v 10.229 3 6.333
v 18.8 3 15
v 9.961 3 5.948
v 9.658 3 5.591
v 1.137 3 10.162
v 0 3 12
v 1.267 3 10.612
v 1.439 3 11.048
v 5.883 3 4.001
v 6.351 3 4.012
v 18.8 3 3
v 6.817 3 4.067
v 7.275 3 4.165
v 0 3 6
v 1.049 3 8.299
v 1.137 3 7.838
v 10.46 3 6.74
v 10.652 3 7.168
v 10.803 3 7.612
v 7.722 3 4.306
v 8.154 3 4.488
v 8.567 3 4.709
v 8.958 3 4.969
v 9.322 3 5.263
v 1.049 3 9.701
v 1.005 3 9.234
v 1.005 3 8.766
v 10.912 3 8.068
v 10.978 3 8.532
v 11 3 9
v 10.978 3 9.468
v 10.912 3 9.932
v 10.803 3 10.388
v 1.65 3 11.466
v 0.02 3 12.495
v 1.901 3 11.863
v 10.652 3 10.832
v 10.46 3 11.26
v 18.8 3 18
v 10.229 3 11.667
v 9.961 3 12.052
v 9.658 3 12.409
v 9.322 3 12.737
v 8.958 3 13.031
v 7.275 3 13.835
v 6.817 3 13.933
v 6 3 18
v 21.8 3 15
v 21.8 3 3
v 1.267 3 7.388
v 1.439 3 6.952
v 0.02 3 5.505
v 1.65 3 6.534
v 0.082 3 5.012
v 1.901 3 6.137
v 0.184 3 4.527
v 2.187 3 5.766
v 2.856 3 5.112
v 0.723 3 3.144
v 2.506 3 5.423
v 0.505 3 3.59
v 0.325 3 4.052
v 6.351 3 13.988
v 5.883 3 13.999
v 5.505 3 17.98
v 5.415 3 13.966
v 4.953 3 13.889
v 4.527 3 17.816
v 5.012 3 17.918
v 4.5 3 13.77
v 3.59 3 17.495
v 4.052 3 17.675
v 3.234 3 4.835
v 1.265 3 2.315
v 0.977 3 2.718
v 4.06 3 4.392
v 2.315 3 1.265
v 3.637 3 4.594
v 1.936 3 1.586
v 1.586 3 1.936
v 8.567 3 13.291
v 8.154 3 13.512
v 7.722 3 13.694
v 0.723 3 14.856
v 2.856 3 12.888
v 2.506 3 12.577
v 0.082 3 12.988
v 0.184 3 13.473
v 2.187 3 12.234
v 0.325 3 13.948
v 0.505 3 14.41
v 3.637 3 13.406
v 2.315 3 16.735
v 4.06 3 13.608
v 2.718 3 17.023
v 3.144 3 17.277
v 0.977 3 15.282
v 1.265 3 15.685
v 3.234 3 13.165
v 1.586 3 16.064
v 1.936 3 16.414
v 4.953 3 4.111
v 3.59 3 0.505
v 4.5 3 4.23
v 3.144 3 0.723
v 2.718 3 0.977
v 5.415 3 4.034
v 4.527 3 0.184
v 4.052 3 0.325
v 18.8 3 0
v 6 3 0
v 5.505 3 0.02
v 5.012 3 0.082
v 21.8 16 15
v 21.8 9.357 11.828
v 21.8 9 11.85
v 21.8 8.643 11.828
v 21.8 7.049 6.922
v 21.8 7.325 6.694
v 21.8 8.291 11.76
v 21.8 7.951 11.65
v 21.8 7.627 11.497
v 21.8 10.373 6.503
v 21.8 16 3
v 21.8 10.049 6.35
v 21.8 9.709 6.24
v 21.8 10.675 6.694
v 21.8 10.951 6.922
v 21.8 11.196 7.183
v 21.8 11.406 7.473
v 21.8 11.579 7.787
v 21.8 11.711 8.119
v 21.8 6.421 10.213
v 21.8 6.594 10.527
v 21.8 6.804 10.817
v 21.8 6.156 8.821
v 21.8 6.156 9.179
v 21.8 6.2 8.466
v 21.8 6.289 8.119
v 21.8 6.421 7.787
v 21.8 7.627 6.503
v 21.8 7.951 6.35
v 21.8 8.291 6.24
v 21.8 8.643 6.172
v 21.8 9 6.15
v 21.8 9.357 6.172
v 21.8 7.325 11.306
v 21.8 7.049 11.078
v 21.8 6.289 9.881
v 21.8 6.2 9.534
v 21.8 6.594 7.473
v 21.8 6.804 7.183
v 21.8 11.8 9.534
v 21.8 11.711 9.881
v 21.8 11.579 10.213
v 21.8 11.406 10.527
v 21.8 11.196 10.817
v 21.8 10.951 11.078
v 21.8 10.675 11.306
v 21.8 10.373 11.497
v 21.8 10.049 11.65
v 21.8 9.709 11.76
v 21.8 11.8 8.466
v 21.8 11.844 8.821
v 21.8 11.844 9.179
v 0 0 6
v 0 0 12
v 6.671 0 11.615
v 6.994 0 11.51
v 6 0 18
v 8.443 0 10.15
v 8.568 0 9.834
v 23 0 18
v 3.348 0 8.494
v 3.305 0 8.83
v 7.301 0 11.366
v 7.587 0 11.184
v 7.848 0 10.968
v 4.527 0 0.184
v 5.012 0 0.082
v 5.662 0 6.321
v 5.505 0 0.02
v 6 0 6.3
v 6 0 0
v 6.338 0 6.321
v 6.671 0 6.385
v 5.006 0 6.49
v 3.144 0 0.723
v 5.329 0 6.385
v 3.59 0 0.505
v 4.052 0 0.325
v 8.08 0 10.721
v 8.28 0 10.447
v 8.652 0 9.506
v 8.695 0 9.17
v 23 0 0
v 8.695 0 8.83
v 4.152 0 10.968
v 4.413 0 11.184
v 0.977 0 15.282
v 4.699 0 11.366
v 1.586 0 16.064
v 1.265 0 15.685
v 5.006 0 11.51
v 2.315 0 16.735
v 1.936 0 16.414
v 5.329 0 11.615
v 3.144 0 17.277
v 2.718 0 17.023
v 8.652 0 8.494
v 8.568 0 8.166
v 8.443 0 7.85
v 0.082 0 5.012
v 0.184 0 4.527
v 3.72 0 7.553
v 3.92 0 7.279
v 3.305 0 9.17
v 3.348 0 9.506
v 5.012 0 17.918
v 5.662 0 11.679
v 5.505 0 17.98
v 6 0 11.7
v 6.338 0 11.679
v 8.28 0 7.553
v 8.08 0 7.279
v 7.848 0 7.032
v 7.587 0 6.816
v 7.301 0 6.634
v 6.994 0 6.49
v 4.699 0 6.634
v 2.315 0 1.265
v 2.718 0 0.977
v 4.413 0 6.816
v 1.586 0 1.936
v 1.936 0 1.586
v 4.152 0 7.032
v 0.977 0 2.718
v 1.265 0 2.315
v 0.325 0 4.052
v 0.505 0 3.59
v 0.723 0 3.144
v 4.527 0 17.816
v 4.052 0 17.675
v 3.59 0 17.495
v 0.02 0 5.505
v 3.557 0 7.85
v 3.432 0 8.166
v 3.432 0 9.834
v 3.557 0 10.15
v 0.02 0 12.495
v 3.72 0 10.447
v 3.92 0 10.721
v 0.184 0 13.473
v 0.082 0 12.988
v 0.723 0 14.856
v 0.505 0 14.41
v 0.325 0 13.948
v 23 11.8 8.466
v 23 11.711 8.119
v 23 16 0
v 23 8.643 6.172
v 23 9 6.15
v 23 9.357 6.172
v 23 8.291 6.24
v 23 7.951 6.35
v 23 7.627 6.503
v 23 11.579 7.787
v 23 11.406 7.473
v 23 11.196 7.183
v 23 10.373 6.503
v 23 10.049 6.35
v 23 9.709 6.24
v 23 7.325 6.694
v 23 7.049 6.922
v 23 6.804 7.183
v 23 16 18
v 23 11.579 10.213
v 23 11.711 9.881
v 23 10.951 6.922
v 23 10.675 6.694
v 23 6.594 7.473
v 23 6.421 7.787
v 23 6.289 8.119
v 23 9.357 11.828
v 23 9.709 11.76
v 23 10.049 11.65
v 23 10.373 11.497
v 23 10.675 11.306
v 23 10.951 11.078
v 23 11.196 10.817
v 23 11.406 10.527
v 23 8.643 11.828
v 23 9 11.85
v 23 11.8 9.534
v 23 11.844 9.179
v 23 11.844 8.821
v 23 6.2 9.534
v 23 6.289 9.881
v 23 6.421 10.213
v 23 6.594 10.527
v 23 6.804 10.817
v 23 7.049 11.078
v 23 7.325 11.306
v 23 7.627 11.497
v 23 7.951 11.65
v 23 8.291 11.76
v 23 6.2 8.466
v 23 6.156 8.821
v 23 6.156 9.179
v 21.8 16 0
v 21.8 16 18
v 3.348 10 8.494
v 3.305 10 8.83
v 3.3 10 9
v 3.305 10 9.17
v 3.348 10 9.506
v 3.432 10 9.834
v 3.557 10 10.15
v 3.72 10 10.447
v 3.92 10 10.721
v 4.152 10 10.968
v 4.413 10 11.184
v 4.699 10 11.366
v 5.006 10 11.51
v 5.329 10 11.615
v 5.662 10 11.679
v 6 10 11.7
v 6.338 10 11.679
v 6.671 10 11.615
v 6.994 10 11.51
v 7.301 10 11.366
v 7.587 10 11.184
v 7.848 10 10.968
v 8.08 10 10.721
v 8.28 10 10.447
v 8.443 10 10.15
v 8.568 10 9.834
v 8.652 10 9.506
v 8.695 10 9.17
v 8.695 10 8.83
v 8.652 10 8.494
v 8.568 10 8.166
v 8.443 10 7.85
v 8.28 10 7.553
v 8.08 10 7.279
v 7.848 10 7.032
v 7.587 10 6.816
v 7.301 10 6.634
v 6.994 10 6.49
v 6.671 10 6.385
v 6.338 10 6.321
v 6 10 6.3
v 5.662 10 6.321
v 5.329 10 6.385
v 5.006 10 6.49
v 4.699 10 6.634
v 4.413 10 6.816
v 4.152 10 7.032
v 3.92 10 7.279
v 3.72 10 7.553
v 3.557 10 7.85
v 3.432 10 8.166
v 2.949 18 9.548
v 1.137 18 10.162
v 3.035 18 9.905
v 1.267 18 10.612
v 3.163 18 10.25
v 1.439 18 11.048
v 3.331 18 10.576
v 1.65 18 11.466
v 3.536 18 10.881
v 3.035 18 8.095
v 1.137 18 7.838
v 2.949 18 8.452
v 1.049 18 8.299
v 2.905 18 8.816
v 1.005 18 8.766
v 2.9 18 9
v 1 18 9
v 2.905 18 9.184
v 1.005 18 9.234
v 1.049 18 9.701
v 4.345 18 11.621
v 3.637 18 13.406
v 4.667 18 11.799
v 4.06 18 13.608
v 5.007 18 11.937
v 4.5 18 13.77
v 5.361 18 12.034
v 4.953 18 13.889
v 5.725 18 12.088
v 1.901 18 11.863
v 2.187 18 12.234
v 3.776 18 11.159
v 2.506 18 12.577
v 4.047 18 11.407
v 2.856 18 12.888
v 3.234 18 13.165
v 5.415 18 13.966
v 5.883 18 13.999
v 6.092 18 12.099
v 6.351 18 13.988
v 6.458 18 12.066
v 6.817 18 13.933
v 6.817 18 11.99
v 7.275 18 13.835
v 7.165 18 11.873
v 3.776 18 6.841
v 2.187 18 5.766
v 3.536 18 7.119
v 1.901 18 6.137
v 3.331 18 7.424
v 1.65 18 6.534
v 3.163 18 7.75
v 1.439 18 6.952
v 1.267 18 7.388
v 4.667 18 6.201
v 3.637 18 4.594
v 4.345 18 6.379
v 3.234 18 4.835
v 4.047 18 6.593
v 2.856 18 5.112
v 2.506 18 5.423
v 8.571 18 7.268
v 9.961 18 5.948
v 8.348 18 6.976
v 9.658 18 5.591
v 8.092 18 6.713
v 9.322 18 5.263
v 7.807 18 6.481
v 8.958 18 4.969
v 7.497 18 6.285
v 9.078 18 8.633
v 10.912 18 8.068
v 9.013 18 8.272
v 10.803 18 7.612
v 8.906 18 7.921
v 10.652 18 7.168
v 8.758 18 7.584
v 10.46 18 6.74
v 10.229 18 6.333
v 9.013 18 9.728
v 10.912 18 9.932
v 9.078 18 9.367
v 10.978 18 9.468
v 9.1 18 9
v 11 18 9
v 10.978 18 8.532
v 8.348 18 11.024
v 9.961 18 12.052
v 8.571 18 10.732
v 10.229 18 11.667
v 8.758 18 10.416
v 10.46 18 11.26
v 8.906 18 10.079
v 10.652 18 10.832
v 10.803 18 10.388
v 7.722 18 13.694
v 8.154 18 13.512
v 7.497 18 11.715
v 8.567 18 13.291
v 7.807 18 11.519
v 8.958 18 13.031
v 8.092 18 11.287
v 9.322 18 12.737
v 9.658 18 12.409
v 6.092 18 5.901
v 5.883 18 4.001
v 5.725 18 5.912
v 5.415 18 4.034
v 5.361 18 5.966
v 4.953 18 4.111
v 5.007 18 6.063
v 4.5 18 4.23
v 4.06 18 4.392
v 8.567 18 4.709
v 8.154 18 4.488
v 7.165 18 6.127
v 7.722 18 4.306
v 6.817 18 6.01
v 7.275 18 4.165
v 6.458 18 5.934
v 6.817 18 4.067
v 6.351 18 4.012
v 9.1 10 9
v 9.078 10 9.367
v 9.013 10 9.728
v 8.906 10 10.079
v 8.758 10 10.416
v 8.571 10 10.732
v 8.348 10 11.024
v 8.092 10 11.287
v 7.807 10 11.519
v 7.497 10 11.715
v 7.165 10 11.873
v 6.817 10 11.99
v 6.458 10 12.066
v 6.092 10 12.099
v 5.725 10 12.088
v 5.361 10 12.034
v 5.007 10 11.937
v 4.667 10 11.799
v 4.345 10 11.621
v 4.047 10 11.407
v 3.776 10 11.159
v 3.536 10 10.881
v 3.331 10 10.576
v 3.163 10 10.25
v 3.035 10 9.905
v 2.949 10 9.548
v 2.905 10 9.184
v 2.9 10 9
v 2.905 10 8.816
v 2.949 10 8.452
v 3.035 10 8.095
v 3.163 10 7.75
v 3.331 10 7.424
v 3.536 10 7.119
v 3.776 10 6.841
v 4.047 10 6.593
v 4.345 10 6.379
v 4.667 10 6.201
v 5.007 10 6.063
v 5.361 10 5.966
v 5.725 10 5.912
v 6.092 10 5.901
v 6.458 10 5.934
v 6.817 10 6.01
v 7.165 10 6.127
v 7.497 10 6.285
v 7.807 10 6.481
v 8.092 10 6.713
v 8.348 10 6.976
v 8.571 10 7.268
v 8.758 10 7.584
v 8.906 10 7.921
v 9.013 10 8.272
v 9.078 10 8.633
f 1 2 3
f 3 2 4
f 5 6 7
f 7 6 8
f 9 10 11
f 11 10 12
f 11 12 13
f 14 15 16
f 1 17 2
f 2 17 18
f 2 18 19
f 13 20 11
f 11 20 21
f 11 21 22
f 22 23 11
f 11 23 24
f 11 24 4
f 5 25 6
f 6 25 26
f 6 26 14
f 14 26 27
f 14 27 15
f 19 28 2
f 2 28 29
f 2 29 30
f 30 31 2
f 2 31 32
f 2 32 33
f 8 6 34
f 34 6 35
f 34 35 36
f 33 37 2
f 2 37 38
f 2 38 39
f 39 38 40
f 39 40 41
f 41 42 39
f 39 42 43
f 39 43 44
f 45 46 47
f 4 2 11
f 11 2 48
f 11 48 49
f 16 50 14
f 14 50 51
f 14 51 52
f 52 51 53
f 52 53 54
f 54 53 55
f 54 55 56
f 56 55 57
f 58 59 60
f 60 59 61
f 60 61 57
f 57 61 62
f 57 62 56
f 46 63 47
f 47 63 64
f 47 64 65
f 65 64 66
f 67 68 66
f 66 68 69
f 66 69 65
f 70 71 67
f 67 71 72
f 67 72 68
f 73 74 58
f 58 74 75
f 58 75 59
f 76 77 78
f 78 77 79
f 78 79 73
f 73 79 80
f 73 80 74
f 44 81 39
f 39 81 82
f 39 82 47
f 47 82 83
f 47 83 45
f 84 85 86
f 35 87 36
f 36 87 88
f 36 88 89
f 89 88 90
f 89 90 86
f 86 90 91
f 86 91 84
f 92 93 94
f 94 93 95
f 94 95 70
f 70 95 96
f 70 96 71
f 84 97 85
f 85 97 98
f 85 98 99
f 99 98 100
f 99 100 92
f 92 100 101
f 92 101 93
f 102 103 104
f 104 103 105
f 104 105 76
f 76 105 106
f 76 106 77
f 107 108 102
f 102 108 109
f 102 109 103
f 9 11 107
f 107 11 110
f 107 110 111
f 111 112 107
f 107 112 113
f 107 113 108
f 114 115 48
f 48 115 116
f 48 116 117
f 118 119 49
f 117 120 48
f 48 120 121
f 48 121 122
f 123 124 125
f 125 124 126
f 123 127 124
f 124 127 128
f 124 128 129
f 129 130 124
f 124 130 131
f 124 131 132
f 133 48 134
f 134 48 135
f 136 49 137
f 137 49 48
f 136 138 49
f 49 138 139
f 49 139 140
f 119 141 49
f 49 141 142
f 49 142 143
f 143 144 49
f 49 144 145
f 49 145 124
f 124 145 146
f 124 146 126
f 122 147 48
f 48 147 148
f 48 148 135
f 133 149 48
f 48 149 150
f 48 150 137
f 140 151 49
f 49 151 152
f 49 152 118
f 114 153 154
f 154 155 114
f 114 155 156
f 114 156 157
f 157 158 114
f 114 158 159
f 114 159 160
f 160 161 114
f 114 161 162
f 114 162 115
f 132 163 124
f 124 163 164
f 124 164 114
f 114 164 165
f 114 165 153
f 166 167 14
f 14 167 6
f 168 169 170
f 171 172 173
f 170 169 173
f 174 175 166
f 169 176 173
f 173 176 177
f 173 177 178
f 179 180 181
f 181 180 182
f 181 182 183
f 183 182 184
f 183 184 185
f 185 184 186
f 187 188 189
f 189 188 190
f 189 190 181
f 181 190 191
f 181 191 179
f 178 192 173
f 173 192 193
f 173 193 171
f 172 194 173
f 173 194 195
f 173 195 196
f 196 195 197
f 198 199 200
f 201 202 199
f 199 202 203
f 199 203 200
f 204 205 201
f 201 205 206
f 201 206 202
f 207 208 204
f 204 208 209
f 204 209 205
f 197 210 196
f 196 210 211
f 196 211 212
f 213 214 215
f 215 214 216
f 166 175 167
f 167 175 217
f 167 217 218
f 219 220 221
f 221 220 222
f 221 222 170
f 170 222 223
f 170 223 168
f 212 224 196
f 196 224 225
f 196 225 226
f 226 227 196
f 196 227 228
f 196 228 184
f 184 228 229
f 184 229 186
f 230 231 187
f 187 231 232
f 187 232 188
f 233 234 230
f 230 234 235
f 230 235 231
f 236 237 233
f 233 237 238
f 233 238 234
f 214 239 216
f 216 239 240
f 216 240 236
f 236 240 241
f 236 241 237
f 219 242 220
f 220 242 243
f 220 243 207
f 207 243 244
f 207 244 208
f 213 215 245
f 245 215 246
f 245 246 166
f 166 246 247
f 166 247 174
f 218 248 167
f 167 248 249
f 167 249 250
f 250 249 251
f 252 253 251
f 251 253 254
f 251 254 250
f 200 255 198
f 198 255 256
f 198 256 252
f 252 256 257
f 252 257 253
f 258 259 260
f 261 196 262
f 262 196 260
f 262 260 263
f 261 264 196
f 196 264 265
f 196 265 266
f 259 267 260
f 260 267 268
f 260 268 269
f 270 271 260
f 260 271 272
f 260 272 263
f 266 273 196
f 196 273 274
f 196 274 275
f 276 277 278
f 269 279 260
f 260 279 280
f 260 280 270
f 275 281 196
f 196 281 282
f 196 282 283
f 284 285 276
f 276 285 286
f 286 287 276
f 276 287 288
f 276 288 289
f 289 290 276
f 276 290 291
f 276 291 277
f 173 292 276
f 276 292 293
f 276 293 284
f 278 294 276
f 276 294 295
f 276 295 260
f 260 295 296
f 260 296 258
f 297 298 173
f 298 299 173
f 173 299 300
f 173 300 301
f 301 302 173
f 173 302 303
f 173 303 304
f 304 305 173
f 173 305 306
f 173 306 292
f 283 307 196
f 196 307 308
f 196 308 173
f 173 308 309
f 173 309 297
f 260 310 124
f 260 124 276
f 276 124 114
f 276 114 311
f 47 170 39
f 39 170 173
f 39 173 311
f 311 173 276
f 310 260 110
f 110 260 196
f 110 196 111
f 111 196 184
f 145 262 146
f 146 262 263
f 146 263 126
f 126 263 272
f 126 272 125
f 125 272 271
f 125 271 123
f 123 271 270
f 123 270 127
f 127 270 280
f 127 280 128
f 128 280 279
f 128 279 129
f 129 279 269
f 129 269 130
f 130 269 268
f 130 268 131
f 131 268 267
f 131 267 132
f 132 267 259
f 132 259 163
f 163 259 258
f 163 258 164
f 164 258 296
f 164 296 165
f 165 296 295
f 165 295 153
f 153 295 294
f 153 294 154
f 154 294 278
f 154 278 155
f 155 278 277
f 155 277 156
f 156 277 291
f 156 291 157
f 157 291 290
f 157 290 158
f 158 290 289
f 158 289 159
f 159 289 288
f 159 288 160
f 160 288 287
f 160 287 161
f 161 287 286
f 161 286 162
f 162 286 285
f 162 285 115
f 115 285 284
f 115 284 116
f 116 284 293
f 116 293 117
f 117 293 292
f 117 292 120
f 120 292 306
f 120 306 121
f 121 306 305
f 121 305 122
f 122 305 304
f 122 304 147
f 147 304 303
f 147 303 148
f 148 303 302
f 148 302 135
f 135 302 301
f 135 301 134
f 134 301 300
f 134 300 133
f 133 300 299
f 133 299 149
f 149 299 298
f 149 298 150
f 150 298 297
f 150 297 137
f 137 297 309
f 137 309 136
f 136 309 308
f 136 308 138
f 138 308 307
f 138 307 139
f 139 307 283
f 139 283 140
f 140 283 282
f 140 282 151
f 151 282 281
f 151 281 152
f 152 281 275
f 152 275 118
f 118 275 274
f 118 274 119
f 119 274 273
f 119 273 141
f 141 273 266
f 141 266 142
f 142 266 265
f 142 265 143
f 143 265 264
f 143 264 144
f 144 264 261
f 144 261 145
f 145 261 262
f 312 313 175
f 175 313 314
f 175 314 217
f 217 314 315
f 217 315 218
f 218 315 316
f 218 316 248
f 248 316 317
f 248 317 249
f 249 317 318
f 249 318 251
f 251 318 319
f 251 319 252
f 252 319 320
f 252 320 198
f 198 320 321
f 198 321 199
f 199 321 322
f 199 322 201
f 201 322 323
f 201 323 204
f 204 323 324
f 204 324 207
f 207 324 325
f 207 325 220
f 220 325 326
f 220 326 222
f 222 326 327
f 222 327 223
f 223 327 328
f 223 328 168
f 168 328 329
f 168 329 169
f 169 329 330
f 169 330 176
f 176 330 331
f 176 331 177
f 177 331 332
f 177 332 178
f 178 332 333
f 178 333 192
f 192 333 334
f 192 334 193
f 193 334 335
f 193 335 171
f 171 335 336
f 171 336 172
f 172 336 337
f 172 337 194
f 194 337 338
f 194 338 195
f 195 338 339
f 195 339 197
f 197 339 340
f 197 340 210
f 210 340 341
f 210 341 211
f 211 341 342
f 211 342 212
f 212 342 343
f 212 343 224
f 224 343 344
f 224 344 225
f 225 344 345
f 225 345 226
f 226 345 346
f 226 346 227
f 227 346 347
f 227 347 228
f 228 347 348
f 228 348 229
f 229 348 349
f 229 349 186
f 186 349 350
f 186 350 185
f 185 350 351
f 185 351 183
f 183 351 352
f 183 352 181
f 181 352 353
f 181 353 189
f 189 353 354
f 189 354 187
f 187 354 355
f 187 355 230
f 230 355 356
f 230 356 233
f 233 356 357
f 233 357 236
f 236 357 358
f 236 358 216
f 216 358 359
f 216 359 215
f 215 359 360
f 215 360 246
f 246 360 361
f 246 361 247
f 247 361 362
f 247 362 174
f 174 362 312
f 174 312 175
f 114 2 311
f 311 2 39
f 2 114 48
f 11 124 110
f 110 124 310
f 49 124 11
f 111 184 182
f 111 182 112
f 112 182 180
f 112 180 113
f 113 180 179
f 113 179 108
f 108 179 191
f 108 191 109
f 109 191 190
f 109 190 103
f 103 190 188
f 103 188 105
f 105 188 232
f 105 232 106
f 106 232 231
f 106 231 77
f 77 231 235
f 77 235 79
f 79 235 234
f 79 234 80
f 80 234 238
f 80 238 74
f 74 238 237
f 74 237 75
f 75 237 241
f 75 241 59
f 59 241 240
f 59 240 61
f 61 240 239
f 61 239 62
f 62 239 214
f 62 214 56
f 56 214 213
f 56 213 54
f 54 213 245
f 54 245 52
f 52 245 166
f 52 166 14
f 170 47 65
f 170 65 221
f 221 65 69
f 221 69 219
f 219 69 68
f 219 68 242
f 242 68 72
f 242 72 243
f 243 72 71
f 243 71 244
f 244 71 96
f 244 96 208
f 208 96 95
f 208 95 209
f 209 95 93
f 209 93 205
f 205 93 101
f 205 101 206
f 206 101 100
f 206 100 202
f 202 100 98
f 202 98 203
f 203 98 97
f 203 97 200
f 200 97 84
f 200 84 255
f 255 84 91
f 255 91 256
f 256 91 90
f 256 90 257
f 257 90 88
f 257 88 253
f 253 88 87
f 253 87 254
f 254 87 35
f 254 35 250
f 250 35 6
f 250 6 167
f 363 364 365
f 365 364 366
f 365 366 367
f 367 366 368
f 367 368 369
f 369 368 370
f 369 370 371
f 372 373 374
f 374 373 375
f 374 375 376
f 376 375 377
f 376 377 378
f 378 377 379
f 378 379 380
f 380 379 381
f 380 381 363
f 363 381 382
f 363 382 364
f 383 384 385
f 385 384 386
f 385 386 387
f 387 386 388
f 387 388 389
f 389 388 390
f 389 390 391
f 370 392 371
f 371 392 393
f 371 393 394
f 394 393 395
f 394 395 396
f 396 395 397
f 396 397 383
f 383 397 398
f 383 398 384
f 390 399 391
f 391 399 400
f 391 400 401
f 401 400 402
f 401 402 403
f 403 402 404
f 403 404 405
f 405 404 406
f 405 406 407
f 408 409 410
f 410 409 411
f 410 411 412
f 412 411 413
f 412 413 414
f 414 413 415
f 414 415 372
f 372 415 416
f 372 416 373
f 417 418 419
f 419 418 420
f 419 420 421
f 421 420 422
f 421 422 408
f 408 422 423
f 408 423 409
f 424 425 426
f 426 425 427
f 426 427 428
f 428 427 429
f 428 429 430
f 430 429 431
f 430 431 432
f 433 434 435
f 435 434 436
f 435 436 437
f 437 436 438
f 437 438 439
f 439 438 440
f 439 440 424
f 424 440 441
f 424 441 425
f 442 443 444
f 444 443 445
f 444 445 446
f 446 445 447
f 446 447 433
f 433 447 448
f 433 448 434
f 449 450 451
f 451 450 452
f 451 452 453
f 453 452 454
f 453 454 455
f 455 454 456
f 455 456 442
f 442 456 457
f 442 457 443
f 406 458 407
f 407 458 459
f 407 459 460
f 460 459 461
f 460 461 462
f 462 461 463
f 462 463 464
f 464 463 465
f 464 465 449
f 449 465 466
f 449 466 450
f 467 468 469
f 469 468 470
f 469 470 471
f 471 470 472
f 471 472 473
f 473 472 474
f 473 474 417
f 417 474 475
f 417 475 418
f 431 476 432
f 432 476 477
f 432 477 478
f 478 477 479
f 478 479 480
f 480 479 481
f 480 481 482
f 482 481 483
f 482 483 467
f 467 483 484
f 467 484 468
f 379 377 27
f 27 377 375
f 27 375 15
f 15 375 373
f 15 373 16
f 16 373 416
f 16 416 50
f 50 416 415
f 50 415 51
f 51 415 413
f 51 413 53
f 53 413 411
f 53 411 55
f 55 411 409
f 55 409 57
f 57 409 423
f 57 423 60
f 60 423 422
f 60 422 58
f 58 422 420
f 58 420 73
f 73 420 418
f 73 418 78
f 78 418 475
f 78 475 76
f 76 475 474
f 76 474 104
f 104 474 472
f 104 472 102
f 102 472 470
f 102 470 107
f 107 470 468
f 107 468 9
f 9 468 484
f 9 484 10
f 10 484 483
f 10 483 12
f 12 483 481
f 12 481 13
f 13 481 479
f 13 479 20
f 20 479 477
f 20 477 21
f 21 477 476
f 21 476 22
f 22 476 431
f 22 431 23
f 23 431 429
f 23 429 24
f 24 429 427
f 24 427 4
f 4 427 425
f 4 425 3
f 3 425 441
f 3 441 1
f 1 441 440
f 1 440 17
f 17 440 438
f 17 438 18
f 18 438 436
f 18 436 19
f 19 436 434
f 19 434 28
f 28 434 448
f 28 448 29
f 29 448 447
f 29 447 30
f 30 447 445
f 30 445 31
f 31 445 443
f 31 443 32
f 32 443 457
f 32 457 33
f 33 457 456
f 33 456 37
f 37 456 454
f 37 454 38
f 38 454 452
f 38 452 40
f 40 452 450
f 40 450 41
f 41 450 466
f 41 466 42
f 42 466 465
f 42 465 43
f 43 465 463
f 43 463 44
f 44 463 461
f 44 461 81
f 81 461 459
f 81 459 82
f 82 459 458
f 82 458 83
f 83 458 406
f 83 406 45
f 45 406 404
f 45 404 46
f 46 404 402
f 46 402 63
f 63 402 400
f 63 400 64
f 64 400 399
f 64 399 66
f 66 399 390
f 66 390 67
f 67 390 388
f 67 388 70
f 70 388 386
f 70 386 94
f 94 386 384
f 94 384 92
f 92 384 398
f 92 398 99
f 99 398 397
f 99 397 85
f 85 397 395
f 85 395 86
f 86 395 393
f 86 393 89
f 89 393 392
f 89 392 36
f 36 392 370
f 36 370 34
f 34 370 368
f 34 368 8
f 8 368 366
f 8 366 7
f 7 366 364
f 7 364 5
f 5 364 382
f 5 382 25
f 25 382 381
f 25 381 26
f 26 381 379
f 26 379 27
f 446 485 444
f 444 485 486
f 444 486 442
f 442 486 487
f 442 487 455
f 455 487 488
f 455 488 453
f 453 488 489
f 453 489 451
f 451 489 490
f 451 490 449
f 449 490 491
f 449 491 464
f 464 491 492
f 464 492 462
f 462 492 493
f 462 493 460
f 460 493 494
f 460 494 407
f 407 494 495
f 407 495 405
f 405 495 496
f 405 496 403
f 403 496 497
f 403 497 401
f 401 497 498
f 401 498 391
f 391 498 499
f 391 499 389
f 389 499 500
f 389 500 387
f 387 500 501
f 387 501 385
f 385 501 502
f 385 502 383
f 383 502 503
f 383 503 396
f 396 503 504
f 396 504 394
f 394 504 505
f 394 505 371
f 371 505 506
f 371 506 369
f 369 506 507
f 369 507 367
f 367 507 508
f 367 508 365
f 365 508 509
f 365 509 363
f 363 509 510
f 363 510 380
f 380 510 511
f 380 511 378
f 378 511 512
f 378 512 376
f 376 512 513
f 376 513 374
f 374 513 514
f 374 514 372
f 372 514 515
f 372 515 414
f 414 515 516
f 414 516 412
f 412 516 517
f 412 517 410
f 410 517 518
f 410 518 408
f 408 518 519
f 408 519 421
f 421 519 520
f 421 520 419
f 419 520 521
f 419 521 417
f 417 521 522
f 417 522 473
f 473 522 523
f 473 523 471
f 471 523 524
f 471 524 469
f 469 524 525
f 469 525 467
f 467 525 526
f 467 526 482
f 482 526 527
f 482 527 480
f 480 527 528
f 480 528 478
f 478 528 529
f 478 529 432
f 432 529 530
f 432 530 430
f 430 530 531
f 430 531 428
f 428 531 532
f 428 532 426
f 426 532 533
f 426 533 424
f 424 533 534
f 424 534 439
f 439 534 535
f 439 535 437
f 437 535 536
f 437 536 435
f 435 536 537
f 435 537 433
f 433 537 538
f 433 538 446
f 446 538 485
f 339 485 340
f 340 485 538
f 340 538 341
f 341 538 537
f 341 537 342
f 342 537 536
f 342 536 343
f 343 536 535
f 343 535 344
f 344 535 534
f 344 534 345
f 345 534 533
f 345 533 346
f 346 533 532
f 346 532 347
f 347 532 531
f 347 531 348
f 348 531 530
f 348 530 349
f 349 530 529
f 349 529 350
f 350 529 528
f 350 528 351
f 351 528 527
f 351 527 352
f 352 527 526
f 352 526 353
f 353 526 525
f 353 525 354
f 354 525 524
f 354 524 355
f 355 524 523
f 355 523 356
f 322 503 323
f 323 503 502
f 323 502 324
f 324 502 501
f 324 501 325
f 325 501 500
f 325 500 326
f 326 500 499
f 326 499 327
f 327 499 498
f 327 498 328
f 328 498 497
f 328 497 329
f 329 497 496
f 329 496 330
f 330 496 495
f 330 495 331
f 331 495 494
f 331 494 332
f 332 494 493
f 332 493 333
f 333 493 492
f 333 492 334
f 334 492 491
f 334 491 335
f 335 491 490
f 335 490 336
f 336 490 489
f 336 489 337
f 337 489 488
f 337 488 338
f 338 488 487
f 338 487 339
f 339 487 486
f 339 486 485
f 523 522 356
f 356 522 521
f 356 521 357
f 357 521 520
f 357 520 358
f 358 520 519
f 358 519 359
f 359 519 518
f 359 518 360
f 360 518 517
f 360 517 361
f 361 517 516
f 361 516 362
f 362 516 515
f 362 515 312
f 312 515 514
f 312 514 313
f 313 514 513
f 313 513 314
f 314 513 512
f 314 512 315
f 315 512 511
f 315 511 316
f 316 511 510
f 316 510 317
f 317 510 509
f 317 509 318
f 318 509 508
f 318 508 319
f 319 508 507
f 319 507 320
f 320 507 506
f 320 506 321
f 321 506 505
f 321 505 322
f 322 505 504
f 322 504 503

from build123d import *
from build123d.topology import SkipClean

# Parameters (mm, degrees)
BOSS_EXTRU_1_DEPTH           = 18
ENL_V_MAT_EXTRU_1_DEPTH      = 34.301651611
ENL_V_MAT_EXTRU_1_DEPTH_BACK = 34.301651611
ESQUISSE2_R                  = 2.85
ENL_V_MAT_EXTRU_2_DEPTH      = 34.301651611
ENL_V_MAT_EXTRU_2_DEPTH_BACK = 34.301651611
ESQUISSE3_R                  = 2.7
BOSS_EXTRU_2_DEPTH           = 3
BOSS_EXTRU_3_START           = -18
BOSS_EXTRU_3_DEPTH           = 3
CONG_1_R                     = 6
ESQUISSE6_R                  = 5
ESQUISSE6_R_2                = 3.1
BOSS_EXTRU_4_DEPTH           = 15
ESQUISSE7_R                  = 3.1
ESQUISSE7_R_2                = 2.7
BOSS_EXTRU_5_DEPTH           = 7


with BuildPart() as part:
    # Esquisse1 → Boss.-Extru.1 (new body)
    with BuildSketch(Plane.XY):
        Polygon((0, 0), (23, 0), (23, 16), (21.8, 16), (21.8, 3), (0, 3), align=None)
    extrude(amount=BOSS_EXTRU_1_DEPTH)

    # Esquisse2 → Enlèv. mat.-Extru.1 (cut, two sides: drawn at the far end of the back side and taken through both)
    with BuildSketch(Plane(origin=(23, 0, 0), x_dir=(0, 0, -1), z_dir=(1, 0, 0)).offset(-ENL_V_MAT_EXTRU_1_DEPTH_BACK)):
        with Locations((-9, 9)):
            Circle(ESQUISSE2_R)
    extrude(amount=ENL_V_MAT_EXTRU_1_DEPTH + ENL_V_MAT_EXTRU_1_DEPTH_BACK, mode=Mode.SUBTRACT)

    # Esquisse3 → Enlèv. mat.-Extru.2 (cut, two sides: drawn at the far end of the back side and taken through both)
    with BuildSketch(Plane.XZ.offset(-ENL_V_MAT_EXTRU_2_DEPTH_BACK)):
        with Locations((6, 9)):
            Circle(ESQUISSE3_R)
    extrude(amount=ENL_V_MAT_EXTRU_2_DEPTH + ENL_V_MAT_EXTRU_2_DEPTH_BACK, mode=Mode.SUBTRACT)

    # Esquisse4 → Boss.-Extru.2 (add)
    with BuildSketch(Plane.XY.offset(18)):
        Polygon((21.8, 3), (21.8, 16), (18.8, 3), align=None)
    extrude(amount=-BOSS_EXTRU_2_DEPTH)

    # Esquisse4<2> → Boss.-Extru.3 (add)
    with BuildSketch(Plane.XY.offset(18).offset(BOSS_EXTRU_3_START)):
        Polygon((21.8, 3), (21.8, 16), (18.8, 3), align=None)
    extrude(amount=BOSS_EXTRU_3_DEPTH)

    # Congé1
    cong_1_edges = [part.edges().sort_by_distance(p)[0] for p in [
        (0, 1.5, 18),
        (0, 1.5, 0),
    ]]
    fillet(cong_1_edges, radius=CONG_1_R)

    # Esquisse6 → Boss.-Extru.4 (add)
    with BuildSketch(Plane(origin=(0, 3, 0), x_dir=(1, 0, 0), z_dir=(0, 1, 0))):
        with Locations((6, -9)):
            Circle(ESQUISSE6_R)
        with Locations(Location((6, -9, 0), (0, 0, 180))):
            Circle(ESQUISSE6_R_2, mode=Mode.SUBTRACT)
    extrude(amount=BOSS_EXTRU_4_DEPTH)

    # Esquisse7 → Boss.-Extru.5 (add)
    with SkipClean():  # the faces are left unmerged after this step: merging them gives an invalid solid
        with BuildSketch(Plane(origin=(0, 3, 0), x_dir=(1, 0, 0), z_dir=(0, 1, 0))):
            with Locations(Location((6, -9, 0), (0, 0, 180))):
                Circle(ESQUISSE7_R)
            with Locations(Location((6, -9, 0), (0, 0, 180))):
                Circle(ESQUISSE7_R_2, mode=Mode.SUBTRACT)
        extrude(amount=BOSS_EXTRU_5_DEPTH)


solid = part.part
